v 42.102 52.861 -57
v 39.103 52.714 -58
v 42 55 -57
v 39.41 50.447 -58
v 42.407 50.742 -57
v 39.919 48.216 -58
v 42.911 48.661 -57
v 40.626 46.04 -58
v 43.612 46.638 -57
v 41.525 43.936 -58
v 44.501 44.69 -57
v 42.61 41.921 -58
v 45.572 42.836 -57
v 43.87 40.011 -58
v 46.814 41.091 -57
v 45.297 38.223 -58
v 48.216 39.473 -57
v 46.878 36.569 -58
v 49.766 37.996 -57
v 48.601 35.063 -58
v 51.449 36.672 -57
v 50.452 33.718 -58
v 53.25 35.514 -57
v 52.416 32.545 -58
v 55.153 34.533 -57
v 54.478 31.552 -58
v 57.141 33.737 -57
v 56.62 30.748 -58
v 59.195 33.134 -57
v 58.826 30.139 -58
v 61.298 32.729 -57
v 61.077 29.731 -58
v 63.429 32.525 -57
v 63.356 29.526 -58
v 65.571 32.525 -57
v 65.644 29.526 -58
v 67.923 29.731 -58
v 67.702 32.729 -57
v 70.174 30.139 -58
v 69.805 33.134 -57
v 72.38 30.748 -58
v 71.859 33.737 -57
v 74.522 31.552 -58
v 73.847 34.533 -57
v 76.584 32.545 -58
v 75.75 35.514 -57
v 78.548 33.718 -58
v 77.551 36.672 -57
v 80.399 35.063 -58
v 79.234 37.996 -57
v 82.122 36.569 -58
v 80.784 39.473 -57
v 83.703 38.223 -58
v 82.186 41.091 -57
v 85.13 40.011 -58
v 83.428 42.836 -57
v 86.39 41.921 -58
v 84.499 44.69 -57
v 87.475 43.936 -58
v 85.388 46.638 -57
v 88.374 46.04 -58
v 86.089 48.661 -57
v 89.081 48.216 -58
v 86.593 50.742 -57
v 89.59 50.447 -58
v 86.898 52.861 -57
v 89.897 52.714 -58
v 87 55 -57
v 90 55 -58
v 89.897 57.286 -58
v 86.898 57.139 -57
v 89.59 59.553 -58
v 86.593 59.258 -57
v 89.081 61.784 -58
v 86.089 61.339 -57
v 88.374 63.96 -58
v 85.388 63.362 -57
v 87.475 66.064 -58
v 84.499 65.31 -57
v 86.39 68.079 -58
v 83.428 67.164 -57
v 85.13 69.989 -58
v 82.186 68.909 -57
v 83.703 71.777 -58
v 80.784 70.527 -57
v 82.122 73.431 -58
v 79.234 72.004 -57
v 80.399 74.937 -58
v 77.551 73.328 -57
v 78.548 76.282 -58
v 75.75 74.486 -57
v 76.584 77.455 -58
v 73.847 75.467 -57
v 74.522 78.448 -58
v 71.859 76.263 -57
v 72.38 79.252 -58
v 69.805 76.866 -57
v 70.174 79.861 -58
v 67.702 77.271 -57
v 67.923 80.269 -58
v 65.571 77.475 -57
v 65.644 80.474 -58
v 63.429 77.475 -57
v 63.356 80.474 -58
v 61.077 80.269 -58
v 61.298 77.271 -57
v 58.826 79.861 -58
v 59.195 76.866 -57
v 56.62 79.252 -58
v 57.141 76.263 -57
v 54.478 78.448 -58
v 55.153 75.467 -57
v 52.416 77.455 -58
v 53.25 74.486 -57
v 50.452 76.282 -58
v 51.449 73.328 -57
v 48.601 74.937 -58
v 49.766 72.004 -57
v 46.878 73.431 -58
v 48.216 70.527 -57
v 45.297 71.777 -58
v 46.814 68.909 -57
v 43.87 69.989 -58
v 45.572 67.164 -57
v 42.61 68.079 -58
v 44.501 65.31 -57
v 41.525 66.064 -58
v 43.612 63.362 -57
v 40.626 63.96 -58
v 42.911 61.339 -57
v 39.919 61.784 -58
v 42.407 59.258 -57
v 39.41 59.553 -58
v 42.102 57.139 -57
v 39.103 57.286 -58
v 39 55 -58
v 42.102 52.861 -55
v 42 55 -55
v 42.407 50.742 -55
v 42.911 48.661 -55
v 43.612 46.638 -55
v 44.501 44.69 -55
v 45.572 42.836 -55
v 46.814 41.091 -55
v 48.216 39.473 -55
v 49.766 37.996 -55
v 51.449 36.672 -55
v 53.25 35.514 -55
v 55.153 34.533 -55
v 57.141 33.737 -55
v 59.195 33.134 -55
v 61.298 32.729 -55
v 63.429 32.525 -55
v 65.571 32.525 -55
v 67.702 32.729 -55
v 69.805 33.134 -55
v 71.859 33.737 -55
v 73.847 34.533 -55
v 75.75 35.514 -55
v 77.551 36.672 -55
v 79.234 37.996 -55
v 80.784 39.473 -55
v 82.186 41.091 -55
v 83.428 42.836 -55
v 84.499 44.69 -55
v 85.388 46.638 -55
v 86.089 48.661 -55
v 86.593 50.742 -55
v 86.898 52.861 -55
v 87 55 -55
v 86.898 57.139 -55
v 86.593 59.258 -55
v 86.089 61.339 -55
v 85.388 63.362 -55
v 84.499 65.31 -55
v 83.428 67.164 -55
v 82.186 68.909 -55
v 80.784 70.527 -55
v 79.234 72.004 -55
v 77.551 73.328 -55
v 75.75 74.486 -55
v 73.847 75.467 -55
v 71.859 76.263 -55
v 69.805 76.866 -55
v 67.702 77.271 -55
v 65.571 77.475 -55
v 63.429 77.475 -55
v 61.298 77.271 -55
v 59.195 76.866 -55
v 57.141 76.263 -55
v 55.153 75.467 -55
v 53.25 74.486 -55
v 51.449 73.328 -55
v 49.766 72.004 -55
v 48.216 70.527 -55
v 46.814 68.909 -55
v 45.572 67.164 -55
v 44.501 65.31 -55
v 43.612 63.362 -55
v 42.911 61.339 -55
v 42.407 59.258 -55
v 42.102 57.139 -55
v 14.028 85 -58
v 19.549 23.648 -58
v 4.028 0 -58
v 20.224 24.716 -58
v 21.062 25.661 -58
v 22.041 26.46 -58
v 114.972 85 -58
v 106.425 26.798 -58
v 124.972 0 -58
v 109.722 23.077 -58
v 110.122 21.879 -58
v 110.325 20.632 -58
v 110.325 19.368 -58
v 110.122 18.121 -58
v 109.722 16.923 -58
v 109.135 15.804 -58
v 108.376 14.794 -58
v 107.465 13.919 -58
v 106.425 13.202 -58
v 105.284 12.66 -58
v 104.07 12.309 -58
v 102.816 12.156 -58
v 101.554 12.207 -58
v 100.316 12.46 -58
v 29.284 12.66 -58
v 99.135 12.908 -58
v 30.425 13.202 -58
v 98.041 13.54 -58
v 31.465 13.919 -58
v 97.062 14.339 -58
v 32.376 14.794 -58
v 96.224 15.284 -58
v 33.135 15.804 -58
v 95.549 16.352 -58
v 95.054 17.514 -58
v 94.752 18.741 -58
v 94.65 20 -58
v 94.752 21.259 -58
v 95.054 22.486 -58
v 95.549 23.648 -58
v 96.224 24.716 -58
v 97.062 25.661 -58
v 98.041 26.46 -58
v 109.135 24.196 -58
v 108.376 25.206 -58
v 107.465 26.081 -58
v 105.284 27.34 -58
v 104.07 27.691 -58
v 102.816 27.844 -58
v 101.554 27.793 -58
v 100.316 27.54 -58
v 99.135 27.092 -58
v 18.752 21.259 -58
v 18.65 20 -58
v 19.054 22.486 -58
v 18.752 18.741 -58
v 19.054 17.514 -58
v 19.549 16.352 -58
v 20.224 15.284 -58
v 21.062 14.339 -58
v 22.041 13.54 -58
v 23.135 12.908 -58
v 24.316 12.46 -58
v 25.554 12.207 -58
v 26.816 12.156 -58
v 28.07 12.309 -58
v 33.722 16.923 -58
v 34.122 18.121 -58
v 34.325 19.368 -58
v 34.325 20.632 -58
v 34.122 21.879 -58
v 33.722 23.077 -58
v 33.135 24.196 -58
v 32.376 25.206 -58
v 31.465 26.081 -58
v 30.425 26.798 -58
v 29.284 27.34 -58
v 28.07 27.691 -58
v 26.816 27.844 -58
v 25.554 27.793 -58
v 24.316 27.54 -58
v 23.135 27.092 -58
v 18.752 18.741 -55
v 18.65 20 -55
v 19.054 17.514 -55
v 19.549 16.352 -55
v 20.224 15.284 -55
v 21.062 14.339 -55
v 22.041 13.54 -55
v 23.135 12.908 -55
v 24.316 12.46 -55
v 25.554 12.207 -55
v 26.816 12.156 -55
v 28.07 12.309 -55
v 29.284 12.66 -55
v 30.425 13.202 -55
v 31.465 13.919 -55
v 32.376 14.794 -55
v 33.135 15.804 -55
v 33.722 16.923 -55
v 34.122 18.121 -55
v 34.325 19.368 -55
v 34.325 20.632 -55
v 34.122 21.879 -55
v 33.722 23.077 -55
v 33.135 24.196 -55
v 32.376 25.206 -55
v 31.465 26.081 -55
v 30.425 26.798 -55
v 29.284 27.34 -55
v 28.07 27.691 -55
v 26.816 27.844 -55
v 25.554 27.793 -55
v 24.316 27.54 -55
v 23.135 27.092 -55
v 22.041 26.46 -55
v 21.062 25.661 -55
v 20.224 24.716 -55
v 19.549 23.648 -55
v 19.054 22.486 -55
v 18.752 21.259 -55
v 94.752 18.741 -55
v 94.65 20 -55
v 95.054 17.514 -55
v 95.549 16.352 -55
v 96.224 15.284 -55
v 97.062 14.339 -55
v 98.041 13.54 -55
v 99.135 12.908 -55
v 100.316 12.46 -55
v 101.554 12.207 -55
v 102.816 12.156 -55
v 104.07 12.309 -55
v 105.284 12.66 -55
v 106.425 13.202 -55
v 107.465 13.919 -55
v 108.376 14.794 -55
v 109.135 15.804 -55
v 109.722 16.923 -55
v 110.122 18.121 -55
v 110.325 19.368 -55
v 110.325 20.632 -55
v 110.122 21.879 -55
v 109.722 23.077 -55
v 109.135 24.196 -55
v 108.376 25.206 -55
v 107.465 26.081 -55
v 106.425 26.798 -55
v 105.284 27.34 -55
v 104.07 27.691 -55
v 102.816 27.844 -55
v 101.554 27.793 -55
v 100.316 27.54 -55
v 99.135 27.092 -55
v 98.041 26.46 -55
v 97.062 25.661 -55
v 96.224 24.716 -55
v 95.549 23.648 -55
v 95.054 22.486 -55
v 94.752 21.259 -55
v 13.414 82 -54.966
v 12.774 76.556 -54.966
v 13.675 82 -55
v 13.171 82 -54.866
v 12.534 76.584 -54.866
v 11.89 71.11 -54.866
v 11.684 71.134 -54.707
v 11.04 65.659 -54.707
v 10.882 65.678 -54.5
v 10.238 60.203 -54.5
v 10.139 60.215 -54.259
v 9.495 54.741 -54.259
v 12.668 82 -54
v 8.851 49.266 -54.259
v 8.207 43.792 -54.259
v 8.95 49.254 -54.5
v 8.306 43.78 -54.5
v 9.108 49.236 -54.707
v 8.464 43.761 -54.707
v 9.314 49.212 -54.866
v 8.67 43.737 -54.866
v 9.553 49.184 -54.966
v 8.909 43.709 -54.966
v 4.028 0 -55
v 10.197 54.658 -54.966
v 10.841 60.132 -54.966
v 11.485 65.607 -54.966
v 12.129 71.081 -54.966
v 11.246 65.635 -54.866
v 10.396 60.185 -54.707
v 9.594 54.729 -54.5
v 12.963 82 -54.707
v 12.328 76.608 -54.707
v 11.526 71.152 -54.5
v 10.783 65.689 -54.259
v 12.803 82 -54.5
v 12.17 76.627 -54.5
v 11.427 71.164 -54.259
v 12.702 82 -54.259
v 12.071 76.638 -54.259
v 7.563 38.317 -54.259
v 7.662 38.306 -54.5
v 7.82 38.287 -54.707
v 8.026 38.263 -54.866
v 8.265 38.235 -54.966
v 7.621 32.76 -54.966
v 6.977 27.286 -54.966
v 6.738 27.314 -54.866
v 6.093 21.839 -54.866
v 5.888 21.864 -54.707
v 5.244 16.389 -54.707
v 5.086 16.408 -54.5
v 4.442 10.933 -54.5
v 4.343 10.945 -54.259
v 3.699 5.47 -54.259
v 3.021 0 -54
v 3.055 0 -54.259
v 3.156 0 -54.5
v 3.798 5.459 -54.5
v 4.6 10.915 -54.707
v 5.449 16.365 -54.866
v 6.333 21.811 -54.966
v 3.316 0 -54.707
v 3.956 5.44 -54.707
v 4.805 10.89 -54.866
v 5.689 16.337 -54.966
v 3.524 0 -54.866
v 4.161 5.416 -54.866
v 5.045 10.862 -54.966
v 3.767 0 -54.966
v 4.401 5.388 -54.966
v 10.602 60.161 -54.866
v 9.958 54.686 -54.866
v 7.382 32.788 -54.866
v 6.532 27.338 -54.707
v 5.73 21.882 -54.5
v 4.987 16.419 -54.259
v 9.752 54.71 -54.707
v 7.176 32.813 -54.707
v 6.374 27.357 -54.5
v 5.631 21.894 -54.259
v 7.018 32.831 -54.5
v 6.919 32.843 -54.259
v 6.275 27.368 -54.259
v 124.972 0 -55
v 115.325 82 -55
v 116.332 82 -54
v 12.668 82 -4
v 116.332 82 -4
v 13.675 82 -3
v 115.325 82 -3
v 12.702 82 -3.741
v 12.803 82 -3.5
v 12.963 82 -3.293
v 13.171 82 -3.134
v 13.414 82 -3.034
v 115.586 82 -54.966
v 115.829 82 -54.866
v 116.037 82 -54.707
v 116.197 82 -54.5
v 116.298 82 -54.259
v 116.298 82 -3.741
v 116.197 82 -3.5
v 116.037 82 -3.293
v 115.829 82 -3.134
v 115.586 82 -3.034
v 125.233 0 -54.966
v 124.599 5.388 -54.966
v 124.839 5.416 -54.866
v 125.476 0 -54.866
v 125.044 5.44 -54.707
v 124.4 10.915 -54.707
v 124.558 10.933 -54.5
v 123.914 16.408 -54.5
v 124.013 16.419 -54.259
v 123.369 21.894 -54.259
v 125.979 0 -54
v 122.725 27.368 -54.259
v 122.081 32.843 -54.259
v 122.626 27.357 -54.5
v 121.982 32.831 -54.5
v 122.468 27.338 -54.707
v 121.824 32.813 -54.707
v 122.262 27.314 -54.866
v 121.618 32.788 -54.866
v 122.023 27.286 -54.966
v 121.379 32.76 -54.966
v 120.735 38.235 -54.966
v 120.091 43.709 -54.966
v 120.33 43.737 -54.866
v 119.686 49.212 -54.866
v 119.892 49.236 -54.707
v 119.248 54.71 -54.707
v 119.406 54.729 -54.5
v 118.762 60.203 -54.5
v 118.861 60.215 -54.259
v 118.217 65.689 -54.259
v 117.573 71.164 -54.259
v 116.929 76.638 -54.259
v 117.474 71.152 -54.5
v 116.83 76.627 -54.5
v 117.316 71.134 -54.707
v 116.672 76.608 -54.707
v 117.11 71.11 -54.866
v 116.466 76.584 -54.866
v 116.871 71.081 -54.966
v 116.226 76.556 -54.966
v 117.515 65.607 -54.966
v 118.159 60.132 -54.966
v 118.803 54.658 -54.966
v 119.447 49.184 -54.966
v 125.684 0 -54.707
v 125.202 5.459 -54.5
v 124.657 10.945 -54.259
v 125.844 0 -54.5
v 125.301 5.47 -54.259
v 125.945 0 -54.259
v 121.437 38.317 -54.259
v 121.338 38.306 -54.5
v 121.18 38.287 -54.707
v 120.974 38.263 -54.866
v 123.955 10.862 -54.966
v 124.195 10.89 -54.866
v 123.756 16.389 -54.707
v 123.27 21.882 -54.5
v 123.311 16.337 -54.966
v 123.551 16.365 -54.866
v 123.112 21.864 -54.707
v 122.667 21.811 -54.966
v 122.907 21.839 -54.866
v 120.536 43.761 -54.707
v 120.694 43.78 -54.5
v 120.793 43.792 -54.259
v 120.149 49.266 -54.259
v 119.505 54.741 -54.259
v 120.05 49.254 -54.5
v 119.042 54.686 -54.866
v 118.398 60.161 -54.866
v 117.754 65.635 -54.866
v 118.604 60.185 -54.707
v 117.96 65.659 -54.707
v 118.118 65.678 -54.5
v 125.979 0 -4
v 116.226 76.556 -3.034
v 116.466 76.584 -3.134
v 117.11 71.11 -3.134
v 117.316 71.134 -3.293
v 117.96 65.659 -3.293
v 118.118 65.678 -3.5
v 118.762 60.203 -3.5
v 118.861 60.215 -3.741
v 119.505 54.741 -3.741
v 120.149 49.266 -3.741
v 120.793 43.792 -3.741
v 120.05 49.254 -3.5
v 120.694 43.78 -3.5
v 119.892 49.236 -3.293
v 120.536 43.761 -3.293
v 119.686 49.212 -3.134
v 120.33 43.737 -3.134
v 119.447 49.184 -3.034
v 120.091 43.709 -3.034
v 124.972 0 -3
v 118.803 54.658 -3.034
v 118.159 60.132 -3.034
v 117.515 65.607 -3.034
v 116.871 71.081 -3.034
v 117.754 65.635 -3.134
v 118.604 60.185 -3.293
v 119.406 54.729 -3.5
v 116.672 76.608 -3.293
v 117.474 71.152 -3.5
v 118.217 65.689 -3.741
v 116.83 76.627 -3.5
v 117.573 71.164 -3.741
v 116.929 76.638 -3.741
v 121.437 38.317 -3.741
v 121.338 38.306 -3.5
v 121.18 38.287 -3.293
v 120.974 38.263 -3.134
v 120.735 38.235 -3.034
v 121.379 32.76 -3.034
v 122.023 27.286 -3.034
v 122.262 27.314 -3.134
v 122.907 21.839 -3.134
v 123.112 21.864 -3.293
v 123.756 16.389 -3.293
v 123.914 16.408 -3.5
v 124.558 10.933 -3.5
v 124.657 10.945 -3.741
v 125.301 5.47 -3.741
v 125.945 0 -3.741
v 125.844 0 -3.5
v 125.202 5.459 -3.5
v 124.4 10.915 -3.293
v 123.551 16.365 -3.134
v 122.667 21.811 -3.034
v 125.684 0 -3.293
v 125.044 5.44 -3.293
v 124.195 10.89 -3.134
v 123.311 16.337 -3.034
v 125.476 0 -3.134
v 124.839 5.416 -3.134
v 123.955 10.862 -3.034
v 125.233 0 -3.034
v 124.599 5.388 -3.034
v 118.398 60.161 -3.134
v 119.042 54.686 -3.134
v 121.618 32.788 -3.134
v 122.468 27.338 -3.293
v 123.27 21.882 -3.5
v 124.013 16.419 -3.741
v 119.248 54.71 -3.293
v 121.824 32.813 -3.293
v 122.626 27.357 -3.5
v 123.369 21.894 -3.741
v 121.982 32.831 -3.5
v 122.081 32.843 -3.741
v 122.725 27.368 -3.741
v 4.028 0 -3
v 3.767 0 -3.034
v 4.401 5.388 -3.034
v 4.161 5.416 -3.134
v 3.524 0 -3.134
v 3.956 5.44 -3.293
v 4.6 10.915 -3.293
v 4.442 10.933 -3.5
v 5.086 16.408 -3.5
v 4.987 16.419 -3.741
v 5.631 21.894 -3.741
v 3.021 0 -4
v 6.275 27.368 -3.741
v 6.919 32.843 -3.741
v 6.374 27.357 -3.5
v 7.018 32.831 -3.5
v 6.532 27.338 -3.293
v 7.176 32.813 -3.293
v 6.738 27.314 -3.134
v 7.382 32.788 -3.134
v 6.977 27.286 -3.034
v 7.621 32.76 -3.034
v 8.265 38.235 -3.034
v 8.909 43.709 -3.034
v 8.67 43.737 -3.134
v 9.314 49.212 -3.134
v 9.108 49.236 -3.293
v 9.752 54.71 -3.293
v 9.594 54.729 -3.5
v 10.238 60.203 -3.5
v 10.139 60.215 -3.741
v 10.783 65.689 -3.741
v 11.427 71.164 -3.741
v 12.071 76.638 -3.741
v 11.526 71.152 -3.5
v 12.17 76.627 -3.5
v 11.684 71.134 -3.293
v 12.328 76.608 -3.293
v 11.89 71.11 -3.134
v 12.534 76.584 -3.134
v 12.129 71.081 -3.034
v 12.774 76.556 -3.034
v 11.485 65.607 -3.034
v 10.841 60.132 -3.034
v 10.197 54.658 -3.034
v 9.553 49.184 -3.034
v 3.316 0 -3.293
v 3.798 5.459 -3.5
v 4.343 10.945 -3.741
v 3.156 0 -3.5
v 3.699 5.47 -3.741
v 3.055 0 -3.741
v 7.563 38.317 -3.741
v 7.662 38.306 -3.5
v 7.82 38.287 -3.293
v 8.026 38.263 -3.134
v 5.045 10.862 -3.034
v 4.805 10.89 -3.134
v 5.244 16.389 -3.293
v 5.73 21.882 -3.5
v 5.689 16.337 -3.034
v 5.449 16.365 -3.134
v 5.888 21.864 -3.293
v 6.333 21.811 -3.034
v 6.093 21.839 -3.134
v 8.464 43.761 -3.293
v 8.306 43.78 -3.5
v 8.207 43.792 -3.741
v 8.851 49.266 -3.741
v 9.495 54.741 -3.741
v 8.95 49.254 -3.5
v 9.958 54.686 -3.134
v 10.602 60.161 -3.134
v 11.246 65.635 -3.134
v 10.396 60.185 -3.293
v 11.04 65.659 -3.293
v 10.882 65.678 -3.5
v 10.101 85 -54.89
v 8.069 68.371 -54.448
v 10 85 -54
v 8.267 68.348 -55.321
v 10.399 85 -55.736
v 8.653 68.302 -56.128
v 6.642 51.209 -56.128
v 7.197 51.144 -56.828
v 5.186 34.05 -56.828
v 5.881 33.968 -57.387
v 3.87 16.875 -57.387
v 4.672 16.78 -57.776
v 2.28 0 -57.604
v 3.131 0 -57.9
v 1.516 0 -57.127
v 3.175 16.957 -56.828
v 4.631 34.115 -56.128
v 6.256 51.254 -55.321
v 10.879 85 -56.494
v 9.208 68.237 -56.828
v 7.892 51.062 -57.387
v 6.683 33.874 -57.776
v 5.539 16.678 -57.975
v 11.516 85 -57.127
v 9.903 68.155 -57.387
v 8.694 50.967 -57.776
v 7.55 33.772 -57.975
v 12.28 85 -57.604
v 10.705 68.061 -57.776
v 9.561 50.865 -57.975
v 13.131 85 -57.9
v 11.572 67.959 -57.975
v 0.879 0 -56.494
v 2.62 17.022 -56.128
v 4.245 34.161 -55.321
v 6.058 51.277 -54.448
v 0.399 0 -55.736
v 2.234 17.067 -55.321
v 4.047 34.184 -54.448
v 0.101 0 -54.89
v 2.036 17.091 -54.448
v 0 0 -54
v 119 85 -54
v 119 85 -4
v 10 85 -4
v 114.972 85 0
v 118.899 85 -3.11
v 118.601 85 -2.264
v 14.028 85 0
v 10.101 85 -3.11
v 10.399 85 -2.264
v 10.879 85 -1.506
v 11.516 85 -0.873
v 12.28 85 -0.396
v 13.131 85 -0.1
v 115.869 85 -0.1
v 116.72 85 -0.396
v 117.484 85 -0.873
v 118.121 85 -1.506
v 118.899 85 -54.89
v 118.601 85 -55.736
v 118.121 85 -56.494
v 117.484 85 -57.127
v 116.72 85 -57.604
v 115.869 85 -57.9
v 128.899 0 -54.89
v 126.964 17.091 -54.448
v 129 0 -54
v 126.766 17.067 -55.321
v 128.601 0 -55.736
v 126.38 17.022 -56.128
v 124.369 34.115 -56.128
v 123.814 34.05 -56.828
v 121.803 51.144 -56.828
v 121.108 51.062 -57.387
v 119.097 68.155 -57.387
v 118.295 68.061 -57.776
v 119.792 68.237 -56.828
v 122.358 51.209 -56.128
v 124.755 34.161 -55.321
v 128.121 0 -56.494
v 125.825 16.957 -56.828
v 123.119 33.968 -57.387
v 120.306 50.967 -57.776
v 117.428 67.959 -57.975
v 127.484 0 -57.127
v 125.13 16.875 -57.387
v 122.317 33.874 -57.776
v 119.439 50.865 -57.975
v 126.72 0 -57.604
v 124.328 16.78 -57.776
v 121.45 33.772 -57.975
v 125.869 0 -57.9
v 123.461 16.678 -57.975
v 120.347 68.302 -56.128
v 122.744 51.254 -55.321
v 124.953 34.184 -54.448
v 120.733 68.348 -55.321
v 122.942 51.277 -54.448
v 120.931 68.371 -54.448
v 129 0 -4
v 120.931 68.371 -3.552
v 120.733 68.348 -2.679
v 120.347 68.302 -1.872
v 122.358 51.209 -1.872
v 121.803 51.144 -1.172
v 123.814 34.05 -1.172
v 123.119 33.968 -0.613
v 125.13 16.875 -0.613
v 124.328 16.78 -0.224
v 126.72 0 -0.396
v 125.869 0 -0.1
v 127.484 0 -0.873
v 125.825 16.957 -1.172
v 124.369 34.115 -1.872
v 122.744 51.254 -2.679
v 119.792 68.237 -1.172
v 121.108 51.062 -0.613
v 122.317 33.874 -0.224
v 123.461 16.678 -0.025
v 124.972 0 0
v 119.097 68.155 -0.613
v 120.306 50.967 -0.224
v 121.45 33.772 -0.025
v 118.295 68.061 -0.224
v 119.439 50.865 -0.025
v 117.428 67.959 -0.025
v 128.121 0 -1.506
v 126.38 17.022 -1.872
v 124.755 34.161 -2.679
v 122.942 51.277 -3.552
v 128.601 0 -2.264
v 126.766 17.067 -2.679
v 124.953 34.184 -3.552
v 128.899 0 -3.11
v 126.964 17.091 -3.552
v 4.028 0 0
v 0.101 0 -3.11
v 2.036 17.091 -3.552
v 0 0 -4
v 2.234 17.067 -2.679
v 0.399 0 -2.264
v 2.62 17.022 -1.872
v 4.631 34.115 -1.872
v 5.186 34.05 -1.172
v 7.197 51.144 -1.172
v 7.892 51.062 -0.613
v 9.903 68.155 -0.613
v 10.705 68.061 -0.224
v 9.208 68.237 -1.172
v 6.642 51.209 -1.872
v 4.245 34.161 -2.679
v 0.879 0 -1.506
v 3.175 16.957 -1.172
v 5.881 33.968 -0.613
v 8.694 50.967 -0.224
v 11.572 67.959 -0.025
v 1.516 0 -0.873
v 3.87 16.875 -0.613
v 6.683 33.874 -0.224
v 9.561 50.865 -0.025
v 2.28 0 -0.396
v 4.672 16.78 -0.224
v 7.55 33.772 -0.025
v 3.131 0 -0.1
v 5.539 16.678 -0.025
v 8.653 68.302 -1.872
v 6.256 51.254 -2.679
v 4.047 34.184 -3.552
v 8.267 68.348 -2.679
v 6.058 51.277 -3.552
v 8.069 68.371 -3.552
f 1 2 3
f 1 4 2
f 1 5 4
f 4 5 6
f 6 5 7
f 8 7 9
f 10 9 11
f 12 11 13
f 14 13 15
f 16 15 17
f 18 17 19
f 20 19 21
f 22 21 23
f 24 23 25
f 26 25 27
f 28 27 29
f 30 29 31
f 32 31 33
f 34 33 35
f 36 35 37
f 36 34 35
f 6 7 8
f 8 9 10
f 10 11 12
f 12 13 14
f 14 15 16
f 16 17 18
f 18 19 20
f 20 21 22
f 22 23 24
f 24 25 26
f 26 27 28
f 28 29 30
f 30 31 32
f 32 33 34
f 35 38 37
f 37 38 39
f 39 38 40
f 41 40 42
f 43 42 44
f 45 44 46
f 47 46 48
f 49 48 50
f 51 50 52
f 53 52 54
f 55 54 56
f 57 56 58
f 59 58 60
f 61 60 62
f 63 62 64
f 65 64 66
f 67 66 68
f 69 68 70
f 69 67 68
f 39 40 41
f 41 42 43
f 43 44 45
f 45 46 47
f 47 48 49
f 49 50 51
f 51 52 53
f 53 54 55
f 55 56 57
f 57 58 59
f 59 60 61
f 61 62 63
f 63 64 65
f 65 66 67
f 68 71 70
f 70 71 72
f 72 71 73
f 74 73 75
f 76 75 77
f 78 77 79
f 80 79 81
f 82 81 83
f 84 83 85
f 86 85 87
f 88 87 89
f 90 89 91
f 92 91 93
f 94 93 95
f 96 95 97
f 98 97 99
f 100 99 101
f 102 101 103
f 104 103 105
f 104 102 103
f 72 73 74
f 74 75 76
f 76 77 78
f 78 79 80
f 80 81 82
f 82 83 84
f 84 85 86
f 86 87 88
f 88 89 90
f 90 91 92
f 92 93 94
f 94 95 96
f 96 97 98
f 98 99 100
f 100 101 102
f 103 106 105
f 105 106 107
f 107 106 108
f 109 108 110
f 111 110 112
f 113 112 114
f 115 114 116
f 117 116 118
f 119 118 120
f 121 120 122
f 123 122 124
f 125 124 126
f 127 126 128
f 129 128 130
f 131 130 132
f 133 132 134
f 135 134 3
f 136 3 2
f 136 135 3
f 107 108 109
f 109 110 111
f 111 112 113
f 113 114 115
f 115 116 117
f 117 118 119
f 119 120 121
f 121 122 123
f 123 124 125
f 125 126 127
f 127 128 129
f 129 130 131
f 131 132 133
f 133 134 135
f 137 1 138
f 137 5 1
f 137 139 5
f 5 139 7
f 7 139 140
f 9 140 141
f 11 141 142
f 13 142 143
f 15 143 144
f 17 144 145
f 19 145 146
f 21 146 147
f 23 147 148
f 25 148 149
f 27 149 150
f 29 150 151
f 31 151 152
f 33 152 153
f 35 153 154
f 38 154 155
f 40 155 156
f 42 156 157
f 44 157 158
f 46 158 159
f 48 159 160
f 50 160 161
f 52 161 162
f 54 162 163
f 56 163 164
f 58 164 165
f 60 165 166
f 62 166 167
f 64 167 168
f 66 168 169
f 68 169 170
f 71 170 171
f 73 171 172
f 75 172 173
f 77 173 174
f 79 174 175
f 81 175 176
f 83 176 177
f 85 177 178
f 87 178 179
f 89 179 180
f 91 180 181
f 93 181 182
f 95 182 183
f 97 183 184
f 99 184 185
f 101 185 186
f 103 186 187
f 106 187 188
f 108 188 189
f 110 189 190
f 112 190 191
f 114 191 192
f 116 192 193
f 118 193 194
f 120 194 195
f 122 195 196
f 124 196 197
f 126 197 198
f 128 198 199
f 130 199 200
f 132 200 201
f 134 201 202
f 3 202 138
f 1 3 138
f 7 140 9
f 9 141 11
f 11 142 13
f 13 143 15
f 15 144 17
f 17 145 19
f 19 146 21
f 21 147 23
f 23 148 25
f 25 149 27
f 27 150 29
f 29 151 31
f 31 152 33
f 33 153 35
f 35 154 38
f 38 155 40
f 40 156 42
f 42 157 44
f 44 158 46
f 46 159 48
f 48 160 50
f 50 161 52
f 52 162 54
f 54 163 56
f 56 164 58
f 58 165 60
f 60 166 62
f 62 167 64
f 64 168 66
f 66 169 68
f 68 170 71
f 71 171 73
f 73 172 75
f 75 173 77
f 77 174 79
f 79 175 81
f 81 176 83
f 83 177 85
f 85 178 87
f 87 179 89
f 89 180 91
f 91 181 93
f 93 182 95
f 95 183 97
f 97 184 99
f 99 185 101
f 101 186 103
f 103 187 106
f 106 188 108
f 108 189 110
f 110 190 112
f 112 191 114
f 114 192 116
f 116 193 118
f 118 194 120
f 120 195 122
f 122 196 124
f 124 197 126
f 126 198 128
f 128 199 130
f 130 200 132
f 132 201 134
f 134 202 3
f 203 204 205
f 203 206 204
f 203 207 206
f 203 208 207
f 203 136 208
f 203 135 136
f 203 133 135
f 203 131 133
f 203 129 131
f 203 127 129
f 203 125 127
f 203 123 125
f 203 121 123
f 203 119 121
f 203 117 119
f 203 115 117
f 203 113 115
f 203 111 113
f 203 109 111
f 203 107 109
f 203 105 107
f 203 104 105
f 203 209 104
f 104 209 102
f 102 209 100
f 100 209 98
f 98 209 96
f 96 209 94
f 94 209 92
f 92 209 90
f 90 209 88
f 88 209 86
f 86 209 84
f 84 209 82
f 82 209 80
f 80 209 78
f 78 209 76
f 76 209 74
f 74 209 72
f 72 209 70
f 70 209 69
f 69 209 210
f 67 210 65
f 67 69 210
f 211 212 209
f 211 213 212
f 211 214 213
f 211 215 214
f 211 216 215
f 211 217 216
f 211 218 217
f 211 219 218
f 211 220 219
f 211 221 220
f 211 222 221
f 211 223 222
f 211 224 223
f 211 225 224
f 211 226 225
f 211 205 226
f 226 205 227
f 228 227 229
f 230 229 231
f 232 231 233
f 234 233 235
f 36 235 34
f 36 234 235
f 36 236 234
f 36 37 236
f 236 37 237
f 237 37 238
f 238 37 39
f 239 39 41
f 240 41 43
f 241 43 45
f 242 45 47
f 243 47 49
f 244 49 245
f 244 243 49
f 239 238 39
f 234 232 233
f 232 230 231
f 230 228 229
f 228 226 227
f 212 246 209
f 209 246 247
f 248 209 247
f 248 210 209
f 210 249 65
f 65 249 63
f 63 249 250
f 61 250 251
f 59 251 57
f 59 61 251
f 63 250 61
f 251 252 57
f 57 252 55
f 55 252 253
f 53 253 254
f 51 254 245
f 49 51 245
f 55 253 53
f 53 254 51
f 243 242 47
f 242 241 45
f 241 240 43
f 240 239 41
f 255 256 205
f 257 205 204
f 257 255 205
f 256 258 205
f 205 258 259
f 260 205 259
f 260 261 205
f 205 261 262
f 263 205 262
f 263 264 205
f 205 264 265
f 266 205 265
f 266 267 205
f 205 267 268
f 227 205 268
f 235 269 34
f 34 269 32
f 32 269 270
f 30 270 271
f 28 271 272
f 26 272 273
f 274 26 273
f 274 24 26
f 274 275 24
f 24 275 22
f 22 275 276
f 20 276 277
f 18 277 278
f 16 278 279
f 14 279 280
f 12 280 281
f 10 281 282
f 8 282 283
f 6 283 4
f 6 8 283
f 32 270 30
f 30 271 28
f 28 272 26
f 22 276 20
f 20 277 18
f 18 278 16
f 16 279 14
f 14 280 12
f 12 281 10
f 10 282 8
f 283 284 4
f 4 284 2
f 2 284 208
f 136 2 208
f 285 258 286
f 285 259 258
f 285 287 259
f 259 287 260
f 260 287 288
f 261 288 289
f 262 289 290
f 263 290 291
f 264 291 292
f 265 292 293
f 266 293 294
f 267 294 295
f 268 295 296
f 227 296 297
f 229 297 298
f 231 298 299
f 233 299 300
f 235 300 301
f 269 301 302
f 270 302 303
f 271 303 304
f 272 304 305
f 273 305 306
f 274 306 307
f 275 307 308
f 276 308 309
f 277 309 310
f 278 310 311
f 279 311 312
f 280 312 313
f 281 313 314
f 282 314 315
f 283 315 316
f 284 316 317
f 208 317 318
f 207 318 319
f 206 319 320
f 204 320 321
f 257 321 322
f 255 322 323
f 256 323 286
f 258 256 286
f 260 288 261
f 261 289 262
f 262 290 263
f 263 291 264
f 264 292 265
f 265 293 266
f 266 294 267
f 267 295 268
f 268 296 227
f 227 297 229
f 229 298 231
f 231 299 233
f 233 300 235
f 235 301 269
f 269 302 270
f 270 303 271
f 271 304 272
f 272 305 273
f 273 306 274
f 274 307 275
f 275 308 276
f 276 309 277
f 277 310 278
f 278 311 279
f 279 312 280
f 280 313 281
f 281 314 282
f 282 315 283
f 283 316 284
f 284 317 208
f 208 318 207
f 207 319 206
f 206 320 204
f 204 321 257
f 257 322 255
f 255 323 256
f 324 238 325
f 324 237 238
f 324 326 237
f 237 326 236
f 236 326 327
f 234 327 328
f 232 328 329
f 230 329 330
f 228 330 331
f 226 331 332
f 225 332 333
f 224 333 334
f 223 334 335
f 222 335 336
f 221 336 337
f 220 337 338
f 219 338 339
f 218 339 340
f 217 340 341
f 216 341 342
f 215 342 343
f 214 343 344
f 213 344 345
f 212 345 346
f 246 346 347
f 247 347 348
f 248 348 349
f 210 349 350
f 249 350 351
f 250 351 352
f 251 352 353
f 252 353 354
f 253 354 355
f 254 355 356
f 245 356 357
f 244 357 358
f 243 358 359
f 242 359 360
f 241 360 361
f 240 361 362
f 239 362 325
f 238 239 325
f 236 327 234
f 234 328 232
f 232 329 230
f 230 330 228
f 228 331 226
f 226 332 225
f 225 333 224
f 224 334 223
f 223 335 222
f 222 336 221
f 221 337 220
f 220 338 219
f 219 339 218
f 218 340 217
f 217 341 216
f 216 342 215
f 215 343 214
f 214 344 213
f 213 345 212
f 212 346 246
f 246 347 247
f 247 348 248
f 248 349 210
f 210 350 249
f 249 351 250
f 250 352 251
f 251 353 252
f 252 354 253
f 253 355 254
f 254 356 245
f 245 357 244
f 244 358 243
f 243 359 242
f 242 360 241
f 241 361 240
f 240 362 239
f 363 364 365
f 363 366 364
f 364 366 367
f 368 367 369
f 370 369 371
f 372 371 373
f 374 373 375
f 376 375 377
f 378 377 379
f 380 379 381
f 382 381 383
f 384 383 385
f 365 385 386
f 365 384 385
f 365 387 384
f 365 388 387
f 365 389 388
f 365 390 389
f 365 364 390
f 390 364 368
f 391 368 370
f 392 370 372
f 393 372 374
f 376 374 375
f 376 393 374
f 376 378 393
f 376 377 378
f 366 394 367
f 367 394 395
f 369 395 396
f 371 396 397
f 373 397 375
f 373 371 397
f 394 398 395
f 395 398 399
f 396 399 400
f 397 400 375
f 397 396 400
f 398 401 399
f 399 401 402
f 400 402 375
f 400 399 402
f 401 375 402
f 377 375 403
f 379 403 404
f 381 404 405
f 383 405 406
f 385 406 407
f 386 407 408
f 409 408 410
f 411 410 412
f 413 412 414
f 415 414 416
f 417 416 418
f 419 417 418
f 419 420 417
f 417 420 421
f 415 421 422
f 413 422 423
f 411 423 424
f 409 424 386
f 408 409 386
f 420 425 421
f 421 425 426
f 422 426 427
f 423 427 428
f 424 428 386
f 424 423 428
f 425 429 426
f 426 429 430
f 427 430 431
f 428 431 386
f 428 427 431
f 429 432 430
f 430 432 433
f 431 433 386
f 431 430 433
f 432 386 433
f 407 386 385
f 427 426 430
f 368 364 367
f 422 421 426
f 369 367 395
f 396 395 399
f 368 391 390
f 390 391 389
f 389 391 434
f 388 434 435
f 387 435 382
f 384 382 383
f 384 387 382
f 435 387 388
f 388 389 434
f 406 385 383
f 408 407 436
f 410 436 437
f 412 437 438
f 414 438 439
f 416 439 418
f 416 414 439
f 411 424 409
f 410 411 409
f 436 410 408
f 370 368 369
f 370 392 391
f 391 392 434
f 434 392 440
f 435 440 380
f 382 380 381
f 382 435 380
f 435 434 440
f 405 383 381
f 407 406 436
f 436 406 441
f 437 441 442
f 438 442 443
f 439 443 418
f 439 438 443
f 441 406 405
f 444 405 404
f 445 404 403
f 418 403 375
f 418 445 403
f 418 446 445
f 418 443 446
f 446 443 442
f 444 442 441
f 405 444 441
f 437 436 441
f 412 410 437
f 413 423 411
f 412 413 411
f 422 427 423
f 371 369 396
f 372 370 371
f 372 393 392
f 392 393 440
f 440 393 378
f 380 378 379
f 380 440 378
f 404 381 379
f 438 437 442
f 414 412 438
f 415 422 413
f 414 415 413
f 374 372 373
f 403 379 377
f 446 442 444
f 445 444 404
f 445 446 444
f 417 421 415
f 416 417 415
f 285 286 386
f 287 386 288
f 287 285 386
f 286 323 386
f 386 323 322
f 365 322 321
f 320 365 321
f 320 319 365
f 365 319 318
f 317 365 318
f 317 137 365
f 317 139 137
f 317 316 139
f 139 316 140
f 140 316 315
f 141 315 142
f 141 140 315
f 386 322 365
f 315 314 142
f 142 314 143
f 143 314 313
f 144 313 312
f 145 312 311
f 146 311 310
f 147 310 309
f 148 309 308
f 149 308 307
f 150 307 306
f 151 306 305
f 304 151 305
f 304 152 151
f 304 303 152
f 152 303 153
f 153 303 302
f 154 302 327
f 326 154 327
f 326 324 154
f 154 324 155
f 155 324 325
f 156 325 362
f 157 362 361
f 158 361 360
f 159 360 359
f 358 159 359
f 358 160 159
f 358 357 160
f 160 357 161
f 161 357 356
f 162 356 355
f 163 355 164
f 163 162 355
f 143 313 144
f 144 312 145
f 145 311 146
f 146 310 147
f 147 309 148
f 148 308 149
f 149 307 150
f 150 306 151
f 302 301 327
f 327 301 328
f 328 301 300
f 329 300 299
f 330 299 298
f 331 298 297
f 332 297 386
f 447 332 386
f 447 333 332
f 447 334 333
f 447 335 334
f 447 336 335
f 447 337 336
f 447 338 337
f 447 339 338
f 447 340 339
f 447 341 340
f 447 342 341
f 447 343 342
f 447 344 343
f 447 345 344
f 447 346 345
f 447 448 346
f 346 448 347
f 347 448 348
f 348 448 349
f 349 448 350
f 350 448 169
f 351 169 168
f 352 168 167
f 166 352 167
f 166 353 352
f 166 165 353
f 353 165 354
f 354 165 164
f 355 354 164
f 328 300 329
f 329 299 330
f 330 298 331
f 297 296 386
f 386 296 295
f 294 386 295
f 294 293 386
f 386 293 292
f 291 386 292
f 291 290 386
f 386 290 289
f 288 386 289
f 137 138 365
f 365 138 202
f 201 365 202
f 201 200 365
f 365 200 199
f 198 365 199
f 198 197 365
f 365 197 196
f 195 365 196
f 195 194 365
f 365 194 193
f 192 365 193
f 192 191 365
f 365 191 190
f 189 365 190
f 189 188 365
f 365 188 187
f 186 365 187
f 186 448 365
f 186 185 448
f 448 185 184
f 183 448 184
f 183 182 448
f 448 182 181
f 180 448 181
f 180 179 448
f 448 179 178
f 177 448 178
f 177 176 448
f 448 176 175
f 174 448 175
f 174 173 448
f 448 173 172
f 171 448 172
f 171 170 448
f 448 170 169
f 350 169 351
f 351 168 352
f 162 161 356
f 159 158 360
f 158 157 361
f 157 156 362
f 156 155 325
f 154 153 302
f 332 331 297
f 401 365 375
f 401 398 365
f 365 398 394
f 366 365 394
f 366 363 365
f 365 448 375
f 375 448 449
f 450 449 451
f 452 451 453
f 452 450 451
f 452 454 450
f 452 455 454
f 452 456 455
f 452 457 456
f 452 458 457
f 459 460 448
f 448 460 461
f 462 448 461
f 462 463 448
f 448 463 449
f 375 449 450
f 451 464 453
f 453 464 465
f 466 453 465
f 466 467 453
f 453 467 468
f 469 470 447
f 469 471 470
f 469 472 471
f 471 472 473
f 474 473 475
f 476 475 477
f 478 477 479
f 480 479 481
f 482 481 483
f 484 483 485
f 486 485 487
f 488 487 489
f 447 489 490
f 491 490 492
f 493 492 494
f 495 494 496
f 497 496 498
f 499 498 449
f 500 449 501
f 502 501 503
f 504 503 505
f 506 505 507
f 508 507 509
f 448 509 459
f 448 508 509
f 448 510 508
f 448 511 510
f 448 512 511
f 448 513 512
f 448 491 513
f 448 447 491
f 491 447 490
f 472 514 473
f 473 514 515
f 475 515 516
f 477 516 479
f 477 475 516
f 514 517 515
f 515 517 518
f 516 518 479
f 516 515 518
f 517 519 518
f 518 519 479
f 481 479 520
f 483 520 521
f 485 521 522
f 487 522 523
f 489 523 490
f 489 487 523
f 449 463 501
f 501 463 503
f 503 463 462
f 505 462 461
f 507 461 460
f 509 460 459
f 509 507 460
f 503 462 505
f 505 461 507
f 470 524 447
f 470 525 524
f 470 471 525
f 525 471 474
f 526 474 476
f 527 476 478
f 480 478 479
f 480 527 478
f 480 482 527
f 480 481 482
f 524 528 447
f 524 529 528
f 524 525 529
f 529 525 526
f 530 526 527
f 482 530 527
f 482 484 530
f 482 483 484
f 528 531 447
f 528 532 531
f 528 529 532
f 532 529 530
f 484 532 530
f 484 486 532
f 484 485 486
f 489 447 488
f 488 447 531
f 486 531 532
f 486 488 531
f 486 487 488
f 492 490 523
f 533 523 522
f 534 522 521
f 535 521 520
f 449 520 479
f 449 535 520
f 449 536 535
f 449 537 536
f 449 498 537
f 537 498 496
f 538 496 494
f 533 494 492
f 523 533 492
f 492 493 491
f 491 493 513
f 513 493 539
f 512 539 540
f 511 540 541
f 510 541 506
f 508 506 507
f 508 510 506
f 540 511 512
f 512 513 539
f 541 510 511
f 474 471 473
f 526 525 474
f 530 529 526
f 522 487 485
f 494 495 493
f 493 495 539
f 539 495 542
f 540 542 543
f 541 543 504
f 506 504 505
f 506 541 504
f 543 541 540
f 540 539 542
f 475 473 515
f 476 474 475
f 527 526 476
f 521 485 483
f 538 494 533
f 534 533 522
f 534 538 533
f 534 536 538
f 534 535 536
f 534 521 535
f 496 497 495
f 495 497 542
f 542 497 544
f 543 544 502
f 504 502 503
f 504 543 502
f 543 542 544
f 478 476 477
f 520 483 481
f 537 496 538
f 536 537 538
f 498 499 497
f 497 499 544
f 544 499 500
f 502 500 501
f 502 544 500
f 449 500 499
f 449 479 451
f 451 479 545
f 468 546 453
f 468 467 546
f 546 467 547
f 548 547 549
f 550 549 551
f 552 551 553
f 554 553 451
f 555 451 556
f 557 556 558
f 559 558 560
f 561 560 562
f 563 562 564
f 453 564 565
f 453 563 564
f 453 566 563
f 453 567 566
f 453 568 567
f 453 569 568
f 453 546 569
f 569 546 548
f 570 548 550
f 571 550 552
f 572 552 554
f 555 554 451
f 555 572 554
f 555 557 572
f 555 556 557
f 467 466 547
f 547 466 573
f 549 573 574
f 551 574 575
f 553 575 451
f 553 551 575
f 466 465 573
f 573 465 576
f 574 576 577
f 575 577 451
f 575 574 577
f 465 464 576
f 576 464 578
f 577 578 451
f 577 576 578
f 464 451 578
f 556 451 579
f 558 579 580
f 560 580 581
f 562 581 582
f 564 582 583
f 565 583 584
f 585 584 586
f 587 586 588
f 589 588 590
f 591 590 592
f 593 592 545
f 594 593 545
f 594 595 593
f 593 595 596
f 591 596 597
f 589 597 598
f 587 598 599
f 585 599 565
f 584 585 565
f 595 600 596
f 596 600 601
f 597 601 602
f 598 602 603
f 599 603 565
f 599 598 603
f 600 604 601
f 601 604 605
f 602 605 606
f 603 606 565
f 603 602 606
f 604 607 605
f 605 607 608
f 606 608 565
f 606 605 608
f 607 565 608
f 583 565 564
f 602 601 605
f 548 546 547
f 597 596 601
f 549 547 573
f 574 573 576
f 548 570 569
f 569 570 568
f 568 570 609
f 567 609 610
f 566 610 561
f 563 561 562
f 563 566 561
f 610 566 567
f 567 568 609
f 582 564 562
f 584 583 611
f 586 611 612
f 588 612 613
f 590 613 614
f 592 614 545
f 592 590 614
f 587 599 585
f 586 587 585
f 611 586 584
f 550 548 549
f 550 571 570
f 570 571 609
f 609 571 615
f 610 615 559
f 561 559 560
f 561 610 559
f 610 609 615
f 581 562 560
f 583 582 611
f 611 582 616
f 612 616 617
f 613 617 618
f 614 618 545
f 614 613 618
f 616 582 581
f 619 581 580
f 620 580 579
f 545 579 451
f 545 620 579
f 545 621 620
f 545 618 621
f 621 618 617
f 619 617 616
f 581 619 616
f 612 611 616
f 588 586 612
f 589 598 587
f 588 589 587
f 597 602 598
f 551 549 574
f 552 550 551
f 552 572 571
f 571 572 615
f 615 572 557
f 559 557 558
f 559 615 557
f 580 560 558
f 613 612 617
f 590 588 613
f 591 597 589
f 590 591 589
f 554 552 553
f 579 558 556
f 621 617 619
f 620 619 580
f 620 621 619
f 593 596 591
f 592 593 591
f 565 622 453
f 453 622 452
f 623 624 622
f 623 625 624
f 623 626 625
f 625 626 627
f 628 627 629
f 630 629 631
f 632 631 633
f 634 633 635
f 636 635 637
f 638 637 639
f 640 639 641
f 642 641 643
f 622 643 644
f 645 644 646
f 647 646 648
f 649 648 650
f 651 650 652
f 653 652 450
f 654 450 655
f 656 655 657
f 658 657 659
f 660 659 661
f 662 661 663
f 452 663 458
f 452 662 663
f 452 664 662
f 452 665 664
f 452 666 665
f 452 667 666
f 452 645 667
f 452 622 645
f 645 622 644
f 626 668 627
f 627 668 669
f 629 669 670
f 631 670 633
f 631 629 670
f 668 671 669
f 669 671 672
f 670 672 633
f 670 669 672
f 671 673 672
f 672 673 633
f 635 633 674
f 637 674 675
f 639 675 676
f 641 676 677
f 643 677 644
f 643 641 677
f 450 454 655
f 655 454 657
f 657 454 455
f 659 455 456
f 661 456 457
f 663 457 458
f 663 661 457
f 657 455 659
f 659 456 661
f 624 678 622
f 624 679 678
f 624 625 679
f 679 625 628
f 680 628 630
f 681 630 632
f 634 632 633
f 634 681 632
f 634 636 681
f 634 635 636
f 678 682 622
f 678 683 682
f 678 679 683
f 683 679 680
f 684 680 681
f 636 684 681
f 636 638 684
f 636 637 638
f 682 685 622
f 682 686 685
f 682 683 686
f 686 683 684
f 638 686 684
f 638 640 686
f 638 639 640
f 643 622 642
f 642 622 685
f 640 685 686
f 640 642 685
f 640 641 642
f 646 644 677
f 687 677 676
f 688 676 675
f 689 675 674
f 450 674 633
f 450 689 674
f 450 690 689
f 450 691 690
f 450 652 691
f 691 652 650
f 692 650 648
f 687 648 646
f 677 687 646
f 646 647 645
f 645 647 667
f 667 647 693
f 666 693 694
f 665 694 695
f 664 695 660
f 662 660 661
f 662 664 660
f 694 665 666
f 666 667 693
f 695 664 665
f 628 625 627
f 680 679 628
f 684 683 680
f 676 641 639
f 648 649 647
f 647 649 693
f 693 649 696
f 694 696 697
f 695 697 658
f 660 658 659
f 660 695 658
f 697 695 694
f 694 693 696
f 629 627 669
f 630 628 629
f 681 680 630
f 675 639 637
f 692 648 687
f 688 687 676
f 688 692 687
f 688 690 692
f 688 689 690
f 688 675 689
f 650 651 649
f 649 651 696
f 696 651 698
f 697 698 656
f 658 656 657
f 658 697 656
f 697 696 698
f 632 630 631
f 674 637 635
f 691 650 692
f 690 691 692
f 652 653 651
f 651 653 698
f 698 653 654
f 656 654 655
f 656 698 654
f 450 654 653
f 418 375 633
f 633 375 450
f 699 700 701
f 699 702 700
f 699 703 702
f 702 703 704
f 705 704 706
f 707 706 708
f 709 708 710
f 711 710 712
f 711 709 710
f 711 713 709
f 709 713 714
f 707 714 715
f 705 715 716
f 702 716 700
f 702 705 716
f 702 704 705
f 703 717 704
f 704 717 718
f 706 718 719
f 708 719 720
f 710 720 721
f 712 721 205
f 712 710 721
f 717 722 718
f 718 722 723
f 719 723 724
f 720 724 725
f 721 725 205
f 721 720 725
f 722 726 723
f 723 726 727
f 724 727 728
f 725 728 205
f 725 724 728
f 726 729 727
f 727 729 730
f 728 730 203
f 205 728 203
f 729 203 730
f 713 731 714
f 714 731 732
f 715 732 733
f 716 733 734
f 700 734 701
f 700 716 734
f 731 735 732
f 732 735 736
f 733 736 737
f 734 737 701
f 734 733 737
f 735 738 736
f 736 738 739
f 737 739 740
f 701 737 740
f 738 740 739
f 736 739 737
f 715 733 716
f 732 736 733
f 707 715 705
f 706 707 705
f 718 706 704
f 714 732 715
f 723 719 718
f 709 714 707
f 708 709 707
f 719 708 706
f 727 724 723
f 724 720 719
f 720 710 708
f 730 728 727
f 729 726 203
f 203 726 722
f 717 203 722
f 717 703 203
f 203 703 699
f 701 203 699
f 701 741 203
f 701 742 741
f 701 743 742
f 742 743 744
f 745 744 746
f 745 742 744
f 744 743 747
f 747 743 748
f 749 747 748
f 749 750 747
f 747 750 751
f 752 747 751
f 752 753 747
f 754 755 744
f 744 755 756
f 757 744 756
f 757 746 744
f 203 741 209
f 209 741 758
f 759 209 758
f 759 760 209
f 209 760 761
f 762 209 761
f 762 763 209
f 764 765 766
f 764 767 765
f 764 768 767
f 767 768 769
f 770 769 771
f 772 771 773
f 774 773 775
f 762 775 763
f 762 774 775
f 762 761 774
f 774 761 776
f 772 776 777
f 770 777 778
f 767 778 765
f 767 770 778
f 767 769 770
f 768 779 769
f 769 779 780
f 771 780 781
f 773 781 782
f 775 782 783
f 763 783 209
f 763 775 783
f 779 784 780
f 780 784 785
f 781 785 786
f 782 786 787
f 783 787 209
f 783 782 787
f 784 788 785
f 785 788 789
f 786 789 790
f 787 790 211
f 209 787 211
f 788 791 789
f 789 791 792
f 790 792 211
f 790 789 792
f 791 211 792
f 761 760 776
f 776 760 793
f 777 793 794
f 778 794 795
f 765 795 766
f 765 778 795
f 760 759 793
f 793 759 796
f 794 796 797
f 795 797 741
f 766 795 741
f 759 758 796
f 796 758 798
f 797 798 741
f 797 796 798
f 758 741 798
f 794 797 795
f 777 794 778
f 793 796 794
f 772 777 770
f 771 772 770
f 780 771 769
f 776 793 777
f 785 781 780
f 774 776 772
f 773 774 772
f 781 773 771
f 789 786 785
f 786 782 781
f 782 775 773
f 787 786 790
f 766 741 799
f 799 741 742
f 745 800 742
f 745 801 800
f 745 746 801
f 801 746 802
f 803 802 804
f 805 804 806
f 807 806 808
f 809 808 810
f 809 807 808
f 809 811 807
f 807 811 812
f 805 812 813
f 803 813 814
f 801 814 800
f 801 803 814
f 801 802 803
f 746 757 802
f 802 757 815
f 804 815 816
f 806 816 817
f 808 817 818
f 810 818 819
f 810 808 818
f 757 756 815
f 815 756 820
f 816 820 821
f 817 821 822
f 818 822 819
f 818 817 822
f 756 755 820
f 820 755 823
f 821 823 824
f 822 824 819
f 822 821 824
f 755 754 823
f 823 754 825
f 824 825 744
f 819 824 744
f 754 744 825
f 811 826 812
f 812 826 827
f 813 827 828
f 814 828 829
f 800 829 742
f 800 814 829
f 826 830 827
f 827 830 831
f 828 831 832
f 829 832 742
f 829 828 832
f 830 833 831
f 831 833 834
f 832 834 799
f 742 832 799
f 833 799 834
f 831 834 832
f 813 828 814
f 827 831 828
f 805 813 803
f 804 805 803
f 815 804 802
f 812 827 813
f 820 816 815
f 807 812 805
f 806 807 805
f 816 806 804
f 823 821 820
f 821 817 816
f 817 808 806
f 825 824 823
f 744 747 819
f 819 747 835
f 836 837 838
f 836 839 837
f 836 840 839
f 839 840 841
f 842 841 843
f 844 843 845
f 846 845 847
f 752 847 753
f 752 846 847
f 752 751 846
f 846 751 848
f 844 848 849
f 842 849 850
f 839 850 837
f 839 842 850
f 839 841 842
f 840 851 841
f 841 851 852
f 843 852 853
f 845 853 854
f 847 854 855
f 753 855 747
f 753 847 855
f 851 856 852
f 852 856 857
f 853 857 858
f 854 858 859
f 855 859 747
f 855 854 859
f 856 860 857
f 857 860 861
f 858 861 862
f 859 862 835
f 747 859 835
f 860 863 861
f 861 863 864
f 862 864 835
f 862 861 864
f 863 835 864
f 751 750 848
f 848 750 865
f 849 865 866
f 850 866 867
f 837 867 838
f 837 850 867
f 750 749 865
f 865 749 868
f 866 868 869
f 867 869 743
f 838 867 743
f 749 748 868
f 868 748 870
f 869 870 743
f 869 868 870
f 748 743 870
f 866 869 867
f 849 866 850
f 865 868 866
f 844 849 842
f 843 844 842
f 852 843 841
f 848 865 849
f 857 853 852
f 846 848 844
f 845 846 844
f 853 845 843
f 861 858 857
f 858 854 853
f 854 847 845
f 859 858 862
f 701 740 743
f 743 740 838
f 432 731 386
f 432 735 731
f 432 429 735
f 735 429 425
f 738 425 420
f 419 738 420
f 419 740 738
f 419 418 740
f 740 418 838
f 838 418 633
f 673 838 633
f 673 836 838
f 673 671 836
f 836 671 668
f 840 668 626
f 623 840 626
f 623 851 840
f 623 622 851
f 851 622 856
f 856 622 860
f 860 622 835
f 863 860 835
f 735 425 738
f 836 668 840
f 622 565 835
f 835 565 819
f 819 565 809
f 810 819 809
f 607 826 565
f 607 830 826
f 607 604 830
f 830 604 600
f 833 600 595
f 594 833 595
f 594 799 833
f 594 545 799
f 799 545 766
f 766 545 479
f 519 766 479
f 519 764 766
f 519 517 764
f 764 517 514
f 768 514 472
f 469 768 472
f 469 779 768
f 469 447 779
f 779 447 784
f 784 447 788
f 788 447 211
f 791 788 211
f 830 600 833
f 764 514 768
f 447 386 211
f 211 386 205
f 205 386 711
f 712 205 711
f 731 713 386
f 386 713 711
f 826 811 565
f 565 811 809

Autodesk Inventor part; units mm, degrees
ref_plane "YZ Plane" through (0, 0, 0) normal (1, 0, 0) x (0, 1, 0)
ref_plane "XZ Plane" through (0, 0, 0) normal (0, 1, 0) x (-1, 0, 0)
ref_plane "XY Plane" through (0, 0, 0) normal (0, 0, 1) x (1, 0, 0)
sketch "Sketch1" plane through (0, 0, 0) normal (0, 0, 1) x (1, 0, 0)
  line L0 (0, 0) -> (129, 0)
  line L1 (129, 0) -> (129, 85)
  line L2 (129, 85) -> (0, 85)
  line L3 (0, 85) -> (0, 0)
  line L4 (0, 85) -> (10, 85)
  line L5 (10, 85) -> (0, 0)
  line L6 (129, 85) -> (119, 85)
  line L7 (119, 85) -> (129, 0)
  dimension "d0" = 129
  dimension "d1" = 85
  dimension "d2" = 10
  dimension "d3" = 10
extrude "Extrusion1" add sketch "Sketch1" against normal blind 58 contours L5 L2 L7 L0
fillet "Fillet1" radius 4 4 edges at (5, 42.5, 0) (124, 42.5, 0) (124, 42.5, -58) (5, 42.5, -58)
shell "Shell1" thickness 3 removed faces 1 at (44.3425, 0, -19.3333)
sketch "Sketch3" plane through (0, 0, -58) normal (0, 0, -1) x (-1, 0, 0)
  line L0 (-14.0276, 85) -> (-114.9724, 85) projected
  line L1 (-124.9724, 0) -> (-4.0276, 0) projected
  line L2 (-64.5, 0) -> (-64.5, 85)
  line L3 (-64.5, 85) -> (-64.5, 55)
  circle A0 centre (-64.5, 55) radius 22.5
  line L4 (-64.5, 0) -> (-102.5, 0)
  line L5 (-102.5, 0) -> (-102.5, 20)
  line L6 (-102.5, 20) -> (-64.5, 20)
  line L7 (-64.5, 20) -> (-64.5, 0)
  line L8 (-64.5, 0) -> (-26.5, 0)
  line L9 (-26.5, 0) -> (-26.5, 20)
  line L10 (-26.5, 20) -> (-64.5, 20)
  line L11 (-64.5, 20) -> (-64.5, 0)
  circle A1 centre (-26.5, 20) radius 7.85
  circle A2 centre (-102.5, 20) radius 7.85
  point P0 (0, 0)
  dimension "d18" = 30
  dimension "d19" = 45
  dimension "d20" = 38
  dimension "d21" = 20
  dimension "d22" = 38
  dimension "d23" = 15.7
  dimension "d24" = 15.7
extrude "Extrusion3" cut sketch "Sketch3" against normal blind 10 contours A0 L2 | L2 A0 | A2 L6 L5 | L5 L6 A2 | A1 L10 L9 | L9 L10 A1
chamfer "Chamfer1" distance 3 distance2 1 1 edges at (87, 55, -58) measured on face at (52.7612, 4.22, -58)
properties part number "Box MKIV Version 2"
